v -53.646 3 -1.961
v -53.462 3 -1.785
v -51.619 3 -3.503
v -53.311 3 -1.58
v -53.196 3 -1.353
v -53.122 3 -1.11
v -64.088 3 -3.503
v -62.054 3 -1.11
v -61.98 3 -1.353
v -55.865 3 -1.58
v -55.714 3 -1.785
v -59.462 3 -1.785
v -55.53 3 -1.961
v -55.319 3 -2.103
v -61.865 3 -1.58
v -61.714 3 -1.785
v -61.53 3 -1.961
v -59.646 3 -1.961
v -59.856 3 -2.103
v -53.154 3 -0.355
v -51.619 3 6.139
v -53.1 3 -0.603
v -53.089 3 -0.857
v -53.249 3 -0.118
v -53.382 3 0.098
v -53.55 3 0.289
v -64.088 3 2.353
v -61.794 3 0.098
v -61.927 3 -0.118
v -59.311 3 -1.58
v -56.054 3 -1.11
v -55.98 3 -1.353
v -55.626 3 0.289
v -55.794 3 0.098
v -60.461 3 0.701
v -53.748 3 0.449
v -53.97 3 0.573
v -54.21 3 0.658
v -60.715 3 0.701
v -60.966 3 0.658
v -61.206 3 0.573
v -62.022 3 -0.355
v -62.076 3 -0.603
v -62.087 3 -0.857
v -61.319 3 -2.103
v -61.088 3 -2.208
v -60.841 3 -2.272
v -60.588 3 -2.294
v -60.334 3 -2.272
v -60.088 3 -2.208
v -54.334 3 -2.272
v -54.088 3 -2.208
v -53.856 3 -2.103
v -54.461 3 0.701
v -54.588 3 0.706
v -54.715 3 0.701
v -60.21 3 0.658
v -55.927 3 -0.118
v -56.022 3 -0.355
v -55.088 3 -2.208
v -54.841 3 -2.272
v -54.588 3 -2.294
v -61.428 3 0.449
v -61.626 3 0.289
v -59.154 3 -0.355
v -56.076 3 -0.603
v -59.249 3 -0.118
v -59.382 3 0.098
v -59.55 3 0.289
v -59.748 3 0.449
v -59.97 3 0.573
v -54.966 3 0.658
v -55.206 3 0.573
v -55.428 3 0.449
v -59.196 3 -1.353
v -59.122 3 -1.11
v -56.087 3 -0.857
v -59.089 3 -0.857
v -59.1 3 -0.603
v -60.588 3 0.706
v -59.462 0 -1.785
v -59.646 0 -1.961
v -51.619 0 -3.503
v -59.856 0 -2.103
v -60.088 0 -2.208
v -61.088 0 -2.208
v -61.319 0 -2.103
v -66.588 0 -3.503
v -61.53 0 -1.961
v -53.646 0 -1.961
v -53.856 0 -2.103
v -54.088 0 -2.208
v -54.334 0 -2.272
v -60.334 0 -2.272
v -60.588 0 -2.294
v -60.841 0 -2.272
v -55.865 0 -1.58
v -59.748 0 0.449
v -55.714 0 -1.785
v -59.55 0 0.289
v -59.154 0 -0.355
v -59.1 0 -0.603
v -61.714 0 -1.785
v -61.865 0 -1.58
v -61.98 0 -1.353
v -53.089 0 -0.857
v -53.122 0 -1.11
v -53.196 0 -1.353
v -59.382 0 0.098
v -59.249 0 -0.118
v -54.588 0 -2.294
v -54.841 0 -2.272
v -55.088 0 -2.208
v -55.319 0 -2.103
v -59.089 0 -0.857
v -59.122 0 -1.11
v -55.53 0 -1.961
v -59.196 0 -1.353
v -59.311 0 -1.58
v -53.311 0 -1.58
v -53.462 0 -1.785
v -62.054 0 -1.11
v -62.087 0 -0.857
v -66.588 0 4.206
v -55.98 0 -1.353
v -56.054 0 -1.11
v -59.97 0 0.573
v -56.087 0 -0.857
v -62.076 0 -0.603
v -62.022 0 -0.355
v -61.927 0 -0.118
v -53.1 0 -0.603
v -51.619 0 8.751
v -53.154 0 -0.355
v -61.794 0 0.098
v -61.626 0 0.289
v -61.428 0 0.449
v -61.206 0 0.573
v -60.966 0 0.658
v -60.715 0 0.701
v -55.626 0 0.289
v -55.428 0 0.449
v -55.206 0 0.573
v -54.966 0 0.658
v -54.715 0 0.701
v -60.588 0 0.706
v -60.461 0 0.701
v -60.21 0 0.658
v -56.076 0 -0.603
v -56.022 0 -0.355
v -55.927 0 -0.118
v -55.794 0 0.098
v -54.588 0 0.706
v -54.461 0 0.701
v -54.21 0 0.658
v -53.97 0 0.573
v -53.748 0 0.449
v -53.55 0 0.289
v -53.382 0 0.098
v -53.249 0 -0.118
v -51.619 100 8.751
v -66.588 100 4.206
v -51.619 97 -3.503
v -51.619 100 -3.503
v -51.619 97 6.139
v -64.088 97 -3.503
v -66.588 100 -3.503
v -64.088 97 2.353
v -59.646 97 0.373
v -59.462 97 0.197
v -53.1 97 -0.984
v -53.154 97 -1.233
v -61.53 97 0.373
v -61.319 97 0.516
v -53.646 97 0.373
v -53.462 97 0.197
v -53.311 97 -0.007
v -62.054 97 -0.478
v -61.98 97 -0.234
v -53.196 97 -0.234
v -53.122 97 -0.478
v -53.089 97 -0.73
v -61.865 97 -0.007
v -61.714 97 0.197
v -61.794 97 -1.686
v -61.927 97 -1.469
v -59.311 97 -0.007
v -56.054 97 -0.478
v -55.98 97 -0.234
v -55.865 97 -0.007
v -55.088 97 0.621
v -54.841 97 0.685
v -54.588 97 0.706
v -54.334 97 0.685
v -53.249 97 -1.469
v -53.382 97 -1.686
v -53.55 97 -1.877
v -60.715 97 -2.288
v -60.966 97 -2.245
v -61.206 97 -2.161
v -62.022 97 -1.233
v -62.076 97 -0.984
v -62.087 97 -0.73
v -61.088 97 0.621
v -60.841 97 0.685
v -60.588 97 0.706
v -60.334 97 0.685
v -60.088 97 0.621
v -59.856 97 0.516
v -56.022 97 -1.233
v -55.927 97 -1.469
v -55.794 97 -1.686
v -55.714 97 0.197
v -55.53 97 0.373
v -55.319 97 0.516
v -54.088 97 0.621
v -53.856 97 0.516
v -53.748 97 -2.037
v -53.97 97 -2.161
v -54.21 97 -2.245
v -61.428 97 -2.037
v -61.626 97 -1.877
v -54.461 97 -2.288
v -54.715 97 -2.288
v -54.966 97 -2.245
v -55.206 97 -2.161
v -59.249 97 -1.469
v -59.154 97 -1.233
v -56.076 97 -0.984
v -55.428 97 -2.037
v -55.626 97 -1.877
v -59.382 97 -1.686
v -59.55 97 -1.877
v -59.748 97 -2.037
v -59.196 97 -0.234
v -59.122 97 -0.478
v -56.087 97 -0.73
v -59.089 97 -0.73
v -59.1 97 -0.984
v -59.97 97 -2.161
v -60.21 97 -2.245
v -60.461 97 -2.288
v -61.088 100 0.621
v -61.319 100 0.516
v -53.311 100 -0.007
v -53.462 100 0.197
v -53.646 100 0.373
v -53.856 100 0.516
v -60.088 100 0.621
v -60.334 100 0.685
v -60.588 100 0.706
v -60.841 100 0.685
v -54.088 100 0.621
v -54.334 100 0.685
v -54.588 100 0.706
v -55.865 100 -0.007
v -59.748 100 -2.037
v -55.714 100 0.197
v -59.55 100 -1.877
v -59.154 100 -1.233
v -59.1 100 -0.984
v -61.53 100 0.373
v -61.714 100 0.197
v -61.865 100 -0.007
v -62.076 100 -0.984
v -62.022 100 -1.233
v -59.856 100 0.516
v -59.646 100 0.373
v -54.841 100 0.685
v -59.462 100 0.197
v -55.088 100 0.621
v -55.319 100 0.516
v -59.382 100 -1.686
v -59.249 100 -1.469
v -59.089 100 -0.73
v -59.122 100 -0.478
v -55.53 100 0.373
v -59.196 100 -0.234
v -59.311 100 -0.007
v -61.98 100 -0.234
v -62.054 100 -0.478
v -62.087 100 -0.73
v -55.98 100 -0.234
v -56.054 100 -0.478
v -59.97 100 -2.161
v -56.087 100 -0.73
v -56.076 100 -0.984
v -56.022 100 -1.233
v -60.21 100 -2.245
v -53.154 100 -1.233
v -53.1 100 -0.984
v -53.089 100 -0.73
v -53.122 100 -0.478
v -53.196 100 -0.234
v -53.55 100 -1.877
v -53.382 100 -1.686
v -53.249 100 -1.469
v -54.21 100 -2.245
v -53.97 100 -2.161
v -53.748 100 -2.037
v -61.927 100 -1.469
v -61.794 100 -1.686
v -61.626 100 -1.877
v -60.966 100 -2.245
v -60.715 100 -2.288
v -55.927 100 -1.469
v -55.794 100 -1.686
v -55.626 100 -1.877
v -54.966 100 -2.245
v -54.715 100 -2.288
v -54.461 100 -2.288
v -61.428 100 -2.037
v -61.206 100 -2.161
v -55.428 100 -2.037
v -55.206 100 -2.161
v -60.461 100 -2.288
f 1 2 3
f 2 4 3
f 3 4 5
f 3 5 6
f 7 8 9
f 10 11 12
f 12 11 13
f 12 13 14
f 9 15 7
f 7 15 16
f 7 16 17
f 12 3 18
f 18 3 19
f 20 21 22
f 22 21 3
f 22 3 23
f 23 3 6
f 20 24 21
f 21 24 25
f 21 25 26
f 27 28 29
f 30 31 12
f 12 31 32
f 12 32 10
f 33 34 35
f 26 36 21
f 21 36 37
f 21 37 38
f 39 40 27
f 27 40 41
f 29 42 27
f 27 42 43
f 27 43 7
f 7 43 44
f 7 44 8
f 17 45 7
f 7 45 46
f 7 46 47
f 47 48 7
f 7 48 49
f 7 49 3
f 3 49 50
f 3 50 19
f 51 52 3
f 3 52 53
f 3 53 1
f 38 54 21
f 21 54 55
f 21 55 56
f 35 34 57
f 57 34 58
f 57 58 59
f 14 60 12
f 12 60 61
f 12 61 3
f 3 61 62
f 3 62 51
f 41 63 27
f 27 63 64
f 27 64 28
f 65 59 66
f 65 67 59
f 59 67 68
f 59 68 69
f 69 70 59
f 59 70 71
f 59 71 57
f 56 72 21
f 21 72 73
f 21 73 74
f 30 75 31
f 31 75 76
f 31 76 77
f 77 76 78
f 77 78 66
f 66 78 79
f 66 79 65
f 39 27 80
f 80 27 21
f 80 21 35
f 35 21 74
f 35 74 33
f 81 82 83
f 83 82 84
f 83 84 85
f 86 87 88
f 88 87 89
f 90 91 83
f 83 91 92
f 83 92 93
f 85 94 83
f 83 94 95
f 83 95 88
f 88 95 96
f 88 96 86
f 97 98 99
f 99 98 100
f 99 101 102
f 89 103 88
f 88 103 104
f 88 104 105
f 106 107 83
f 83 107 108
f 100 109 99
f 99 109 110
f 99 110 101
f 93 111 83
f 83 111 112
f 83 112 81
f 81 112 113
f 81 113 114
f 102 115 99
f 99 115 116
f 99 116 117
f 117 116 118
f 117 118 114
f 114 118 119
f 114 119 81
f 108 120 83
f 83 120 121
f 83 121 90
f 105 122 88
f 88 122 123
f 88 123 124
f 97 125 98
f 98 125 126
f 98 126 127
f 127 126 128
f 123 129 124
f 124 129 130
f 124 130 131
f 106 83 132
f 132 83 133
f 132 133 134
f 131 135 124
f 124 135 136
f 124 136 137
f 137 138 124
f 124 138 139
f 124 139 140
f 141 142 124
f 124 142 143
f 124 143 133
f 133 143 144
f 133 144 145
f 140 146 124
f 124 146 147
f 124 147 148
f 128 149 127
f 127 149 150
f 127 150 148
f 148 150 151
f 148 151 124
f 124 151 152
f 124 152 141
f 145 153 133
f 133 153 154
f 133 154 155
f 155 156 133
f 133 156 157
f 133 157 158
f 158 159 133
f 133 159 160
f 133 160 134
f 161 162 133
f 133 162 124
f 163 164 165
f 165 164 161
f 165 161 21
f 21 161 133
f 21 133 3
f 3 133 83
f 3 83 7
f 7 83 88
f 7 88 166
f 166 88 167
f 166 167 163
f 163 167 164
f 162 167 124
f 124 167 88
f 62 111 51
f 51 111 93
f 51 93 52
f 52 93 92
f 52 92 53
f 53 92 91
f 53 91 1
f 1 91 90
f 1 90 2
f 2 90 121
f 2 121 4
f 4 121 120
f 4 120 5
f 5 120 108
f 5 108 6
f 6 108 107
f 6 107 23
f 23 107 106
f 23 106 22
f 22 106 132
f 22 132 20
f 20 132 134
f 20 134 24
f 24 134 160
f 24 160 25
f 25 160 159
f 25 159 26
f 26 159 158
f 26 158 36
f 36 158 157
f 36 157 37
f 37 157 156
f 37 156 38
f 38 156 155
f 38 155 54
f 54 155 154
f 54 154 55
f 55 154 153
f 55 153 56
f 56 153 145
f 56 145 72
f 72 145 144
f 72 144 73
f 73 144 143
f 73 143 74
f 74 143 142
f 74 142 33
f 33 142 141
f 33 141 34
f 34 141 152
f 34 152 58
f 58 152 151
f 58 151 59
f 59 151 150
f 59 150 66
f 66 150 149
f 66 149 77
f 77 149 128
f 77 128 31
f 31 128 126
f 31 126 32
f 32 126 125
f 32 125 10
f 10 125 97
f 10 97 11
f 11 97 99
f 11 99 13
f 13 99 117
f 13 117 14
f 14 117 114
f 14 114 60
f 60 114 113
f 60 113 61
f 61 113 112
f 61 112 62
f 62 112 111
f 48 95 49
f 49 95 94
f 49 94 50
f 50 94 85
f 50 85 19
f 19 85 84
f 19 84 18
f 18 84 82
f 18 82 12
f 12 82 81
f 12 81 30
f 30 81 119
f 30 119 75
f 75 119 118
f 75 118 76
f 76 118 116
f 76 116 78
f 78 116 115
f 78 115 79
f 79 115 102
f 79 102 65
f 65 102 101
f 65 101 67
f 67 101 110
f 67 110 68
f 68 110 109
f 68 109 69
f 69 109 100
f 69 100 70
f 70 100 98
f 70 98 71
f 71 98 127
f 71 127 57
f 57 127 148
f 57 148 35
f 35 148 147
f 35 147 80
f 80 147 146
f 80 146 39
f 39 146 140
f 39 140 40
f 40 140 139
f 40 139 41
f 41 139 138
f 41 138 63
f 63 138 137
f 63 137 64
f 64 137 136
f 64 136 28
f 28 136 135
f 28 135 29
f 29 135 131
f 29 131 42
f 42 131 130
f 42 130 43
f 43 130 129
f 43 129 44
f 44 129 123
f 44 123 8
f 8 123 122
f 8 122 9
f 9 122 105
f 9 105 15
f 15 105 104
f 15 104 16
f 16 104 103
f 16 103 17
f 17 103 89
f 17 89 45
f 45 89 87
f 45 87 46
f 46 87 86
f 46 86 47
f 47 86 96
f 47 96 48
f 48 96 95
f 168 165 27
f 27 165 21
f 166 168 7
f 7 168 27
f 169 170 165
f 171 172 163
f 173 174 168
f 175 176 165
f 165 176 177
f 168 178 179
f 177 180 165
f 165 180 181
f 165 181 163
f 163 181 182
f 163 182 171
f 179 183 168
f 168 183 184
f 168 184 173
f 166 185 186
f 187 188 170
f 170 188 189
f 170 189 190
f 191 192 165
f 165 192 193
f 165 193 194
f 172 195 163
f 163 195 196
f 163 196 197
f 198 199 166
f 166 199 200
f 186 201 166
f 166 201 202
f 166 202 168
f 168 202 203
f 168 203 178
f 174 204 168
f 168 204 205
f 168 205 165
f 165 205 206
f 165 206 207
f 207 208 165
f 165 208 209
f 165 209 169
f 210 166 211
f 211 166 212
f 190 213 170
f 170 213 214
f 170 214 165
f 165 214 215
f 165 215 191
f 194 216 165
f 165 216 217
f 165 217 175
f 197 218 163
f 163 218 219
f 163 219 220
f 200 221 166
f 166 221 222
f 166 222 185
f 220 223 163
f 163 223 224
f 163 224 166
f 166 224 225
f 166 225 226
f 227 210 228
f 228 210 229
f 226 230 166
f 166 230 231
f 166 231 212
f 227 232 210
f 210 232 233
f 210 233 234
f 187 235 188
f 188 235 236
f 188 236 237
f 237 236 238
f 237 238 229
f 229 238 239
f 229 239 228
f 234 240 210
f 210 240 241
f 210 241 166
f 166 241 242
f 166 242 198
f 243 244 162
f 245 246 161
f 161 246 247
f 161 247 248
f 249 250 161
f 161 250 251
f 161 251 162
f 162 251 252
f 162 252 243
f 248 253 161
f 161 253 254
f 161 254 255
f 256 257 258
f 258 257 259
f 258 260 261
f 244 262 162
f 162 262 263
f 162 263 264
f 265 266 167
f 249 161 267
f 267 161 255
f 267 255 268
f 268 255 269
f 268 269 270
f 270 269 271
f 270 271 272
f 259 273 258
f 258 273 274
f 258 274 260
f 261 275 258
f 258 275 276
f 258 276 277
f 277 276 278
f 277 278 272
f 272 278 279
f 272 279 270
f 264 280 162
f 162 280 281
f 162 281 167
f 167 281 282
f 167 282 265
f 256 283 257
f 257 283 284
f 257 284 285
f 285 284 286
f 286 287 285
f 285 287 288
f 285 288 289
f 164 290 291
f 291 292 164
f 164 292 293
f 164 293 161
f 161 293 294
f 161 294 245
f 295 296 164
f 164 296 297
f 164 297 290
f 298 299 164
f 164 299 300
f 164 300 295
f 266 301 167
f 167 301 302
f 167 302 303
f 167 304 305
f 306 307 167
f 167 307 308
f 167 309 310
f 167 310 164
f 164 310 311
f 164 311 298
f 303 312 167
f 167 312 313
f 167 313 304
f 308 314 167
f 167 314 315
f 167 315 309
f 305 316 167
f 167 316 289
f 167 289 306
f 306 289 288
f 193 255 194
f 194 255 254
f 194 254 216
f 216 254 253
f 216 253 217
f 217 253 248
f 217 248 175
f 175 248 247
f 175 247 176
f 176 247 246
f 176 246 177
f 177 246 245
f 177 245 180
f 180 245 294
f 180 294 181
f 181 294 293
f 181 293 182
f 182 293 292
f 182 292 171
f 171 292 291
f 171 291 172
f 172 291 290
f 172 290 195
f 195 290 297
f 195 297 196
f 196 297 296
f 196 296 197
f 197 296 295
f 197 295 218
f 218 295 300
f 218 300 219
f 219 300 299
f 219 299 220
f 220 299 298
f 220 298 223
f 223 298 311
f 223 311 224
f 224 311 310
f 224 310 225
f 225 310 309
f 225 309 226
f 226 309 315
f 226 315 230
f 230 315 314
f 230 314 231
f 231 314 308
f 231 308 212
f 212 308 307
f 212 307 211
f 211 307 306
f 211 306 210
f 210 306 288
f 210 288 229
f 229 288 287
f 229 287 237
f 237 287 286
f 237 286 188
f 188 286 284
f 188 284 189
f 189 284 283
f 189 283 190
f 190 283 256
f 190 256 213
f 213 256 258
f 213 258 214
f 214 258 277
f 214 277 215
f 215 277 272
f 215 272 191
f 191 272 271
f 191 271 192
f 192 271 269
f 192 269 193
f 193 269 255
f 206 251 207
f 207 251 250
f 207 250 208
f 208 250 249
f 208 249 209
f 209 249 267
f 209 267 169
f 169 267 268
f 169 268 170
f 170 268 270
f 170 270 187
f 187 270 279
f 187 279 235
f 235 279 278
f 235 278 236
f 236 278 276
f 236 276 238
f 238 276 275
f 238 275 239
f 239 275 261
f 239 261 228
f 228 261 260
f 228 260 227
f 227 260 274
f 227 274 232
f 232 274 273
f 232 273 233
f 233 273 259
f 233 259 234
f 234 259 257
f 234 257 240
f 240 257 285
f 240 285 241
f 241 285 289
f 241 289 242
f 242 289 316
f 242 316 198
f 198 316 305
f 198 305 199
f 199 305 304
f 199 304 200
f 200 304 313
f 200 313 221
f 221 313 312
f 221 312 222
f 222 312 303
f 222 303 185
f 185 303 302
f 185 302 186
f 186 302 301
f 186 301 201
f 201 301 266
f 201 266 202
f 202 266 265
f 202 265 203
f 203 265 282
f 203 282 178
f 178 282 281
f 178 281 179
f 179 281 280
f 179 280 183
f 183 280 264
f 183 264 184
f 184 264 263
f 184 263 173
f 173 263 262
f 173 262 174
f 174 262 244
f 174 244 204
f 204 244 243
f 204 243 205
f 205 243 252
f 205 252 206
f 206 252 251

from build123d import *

# Parameters (mm, degrees)
SKETCH1_R           = 1.5
BOSS_EXTRUDE1_DEPTH = 3
BOSS_EXTRUDE2_DEPTH = 94


with BuildPart() as part:
    # Sketch1 → Boss-Extrude1 (new body)
    with BuildSketch(Plane(origin=(0, 0, 0), x_dir=(1, 0, 0), z_dir=(0, 1, 0))):
        Polygon((-51.61867002, -8.75119844), (-51.61867002, 3.502641742), (-66.587954735, 3.502641742), (-66.587954735, -4.206262026), align=None)
        with Locations((-54.587954735, 0.793737974)):
            Circle(SKETCH1_R, mode=Mode.SUBTRACT)
        with Locations((-60.587954735, 0.793737974)):
            Circle(SKETCH1_R, mode=Mode.SUBTRACT)
    boss_extrude1 = extrude(amount=BOSS_EXTRUDE1_DEPTH)

    # Sketch2 → Boss-Extrude2 (add)
    with BuildSketch(Plane(origin=(0, 3, 0), x_dir=(1, 0, 0), z_dir=(0, 1, 0))):
        Polygon((-64.087954735, 3.502641742), (-66.587954735, 3.502641742), (-66.587954735, -4.206262026), (-63.361180244, -5.185967146), (-61.932848842, -5.619633518), (-51.61867002, -8.75119844), (-51.61867002, -6.138508769), (-61.92070968, -3.010629509), (-64.087954735, -2.35261604), align=None)
    extrude(amount=BOSS_EXTRUDE2_DEPTH)

    # Mirror1: Boss-Extrude1 across plane
    add(boss_extrude1.mirror(Plane(origin=(0, 50, 0), x_dir=(0, 0, 1), z_dir=(0, -1, 0))))


solid = part.part
